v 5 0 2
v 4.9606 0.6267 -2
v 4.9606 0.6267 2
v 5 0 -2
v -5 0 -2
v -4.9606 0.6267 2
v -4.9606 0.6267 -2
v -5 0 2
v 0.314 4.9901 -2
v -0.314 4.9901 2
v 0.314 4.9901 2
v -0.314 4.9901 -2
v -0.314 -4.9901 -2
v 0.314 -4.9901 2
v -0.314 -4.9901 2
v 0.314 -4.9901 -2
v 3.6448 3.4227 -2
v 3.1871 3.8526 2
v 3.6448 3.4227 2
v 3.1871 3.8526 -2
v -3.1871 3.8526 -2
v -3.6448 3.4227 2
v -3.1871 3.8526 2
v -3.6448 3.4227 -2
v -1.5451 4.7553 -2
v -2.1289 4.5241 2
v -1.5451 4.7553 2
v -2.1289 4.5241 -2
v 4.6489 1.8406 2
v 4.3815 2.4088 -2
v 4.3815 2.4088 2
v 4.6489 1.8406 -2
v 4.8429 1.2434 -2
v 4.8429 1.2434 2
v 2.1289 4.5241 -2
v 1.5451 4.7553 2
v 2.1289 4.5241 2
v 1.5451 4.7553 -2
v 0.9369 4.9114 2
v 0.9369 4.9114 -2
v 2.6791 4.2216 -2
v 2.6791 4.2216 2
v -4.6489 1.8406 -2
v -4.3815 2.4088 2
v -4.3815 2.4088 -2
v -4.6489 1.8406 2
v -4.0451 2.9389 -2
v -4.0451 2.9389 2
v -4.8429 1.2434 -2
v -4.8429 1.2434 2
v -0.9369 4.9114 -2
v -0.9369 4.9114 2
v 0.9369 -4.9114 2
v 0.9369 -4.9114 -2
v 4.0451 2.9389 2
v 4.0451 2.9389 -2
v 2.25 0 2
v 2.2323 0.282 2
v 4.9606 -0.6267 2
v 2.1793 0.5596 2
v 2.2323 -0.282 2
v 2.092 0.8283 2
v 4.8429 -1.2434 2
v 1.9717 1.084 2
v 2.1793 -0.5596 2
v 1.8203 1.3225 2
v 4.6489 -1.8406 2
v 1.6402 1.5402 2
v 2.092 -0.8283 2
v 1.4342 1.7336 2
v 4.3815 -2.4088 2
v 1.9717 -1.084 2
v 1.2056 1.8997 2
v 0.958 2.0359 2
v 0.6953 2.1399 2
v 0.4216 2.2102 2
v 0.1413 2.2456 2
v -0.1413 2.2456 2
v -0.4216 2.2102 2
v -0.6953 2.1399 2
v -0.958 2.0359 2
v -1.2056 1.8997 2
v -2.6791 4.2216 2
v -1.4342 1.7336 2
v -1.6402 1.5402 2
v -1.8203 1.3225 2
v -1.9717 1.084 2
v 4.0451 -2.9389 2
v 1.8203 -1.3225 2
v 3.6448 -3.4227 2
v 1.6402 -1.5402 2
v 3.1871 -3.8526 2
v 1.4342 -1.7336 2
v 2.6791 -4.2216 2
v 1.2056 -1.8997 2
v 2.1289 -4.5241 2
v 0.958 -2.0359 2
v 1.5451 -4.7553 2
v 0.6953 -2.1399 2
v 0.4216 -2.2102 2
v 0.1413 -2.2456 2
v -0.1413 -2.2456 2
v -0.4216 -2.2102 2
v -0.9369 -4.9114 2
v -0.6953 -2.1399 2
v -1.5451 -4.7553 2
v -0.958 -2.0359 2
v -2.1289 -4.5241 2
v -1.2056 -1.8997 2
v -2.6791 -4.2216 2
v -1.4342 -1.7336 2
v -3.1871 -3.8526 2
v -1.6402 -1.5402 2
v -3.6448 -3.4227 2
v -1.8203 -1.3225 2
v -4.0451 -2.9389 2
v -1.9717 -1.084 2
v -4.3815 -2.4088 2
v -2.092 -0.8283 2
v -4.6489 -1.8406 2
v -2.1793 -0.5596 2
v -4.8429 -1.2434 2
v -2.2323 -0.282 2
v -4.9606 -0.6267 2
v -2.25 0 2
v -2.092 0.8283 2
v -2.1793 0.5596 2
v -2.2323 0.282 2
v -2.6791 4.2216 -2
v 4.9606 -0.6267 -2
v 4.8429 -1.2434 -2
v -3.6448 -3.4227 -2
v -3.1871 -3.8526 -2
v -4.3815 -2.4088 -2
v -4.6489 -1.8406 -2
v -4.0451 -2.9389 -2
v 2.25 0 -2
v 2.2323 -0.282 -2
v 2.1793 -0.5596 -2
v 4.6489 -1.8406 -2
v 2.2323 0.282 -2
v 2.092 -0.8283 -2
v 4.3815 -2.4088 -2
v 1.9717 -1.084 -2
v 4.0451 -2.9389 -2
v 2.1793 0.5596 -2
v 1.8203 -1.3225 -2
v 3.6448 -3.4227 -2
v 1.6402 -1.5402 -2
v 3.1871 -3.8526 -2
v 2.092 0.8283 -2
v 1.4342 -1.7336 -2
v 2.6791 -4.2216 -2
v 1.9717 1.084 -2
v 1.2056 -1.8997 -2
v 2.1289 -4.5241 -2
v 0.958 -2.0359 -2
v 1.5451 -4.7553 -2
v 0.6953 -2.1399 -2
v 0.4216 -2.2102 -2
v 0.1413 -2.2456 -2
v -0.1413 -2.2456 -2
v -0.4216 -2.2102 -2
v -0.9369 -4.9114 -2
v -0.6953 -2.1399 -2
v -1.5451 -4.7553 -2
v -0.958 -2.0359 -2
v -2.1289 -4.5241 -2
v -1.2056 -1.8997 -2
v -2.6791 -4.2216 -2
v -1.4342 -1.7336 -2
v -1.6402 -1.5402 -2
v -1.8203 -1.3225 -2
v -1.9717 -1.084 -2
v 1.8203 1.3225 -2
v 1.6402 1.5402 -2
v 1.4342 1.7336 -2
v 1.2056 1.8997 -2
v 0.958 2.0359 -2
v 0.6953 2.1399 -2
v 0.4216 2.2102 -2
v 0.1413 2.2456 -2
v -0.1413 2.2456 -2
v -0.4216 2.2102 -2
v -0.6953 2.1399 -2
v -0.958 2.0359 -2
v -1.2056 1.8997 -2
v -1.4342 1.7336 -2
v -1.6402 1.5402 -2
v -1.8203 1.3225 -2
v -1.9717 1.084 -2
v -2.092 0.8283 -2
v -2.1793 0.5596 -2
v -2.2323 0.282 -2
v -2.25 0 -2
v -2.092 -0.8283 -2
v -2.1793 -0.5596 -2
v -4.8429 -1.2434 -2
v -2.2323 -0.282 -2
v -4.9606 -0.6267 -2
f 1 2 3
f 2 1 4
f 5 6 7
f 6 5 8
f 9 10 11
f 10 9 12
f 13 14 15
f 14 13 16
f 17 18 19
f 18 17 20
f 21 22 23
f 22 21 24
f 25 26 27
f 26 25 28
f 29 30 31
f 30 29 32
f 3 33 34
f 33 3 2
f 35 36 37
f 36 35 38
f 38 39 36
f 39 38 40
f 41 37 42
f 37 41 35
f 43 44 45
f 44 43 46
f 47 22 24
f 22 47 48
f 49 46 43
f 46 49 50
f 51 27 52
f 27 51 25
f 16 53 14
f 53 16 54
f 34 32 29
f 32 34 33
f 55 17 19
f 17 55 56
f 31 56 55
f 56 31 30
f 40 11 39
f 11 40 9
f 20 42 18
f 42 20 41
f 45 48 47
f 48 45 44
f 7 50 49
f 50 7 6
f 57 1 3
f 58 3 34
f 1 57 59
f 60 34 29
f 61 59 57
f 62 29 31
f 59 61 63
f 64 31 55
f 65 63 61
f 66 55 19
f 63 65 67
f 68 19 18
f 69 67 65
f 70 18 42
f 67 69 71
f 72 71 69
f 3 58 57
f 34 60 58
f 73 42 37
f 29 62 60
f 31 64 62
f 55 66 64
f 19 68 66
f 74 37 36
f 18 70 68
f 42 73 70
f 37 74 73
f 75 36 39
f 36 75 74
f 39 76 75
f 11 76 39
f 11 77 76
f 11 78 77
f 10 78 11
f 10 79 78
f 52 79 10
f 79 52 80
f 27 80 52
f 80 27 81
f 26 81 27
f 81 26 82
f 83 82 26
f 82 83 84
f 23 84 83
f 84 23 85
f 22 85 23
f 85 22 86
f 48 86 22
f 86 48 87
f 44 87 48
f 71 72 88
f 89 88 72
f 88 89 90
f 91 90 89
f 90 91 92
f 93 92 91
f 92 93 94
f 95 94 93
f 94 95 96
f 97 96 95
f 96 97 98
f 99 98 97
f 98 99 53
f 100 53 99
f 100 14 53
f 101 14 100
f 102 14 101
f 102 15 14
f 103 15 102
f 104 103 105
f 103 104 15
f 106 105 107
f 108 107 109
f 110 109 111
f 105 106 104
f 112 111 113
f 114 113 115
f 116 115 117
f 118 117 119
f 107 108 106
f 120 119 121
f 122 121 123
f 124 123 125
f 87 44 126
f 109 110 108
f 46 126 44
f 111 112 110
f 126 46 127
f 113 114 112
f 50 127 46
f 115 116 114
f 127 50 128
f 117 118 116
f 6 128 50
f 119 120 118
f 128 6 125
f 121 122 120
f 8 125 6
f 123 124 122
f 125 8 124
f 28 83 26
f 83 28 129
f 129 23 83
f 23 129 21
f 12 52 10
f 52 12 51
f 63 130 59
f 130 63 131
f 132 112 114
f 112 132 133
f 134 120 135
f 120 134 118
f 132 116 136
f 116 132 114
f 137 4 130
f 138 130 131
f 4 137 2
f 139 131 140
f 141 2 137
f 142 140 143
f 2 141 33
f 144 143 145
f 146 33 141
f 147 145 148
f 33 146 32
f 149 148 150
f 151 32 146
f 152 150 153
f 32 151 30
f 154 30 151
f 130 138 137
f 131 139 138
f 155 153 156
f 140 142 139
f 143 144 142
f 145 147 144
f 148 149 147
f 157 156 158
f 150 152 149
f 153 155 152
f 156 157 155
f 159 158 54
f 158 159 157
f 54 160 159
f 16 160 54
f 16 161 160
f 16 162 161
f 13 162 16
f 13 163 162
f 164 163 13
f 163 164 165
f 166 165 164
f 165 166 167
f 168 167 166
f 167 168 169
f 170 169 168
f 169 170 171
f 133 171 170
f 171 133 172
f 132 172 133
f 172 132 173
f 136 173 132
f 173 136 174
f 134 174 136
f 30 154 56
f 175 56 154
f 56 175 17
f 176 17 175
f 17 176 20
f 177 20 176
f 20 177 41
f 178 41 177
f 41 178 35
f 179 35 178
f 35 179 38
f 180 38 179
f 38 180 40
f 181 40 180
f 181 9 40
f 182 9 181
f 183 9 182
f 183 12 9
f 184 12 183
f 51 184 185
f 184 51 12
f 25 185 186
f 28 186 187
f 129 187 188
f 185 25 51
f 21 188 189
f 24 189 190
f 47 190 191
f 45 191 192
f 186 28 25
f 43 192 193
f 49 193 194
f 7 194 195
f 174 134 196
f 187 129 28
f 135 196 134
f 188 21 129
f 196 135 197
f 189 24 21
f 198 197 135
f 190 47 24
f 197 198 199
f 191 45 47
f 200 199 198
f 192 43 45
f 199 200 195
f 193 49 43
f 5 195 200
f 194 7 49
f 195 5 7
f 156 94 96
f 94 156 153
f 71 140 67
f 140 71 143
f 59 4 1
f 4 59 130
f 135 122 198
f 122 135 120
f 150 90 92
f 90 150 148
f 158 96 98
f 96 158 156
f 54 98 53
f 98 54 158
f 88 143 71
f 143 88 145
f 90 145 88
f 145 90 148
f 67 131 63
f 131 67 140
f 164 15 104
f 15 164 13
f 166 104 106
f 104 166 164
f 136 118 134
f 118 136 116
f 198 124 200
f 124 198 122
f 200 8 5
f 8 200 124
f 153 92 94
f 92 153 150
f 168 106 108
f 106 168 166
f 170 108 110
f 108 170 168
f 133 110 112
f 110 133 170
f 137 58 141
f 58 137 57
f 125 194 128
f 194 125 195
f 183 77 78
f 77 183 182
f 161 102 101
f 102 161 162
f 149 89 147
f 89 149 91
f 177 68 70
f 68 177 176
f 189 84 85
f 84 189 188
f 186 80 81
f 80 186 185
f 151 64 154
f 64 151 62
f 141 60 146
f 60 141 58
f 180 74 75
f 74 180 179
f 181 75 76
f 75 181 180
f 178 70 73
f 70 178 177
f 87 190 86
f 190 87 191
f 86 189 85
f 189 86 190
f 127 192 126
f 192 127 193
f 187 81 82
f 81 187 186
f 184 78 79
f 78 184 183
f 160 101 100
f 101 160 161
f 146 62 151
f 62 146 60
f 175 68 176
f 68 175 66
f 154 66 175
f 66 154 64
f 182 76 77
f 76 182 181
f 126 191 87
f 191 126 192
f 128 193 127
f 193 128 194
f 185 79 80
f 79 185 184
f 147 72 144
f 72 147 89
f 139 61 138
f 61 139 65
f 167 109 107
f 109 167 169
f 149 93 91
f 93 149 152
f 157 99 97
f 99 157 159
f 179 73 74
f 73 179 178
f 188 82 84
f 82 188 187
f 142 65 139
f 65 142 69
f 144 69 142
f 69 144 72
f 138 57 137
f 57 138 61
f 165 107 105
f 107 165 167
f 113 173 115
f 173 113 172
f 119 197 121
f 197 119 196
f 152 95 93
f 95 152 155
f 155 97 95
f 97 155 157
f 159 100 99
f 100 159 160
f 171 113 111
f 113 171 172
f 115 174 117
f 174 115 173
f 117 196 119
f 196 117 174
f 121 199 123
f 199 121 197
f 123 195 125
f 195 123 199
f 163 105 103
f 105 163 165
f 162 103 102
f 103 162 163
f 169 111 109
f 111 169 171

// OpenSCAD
$fn = 50;


difference() {
	union() {
		translate(v = [0, 0, -2.0000000000]) {
			cylinder(h = 4, r = 5.0000000000);
		}
	}
	union() {
		translate(v = [0, 0, -100.0000000000]) {
			cylinder(h = 200, r = 2.2500000000);
		}
	}
}
